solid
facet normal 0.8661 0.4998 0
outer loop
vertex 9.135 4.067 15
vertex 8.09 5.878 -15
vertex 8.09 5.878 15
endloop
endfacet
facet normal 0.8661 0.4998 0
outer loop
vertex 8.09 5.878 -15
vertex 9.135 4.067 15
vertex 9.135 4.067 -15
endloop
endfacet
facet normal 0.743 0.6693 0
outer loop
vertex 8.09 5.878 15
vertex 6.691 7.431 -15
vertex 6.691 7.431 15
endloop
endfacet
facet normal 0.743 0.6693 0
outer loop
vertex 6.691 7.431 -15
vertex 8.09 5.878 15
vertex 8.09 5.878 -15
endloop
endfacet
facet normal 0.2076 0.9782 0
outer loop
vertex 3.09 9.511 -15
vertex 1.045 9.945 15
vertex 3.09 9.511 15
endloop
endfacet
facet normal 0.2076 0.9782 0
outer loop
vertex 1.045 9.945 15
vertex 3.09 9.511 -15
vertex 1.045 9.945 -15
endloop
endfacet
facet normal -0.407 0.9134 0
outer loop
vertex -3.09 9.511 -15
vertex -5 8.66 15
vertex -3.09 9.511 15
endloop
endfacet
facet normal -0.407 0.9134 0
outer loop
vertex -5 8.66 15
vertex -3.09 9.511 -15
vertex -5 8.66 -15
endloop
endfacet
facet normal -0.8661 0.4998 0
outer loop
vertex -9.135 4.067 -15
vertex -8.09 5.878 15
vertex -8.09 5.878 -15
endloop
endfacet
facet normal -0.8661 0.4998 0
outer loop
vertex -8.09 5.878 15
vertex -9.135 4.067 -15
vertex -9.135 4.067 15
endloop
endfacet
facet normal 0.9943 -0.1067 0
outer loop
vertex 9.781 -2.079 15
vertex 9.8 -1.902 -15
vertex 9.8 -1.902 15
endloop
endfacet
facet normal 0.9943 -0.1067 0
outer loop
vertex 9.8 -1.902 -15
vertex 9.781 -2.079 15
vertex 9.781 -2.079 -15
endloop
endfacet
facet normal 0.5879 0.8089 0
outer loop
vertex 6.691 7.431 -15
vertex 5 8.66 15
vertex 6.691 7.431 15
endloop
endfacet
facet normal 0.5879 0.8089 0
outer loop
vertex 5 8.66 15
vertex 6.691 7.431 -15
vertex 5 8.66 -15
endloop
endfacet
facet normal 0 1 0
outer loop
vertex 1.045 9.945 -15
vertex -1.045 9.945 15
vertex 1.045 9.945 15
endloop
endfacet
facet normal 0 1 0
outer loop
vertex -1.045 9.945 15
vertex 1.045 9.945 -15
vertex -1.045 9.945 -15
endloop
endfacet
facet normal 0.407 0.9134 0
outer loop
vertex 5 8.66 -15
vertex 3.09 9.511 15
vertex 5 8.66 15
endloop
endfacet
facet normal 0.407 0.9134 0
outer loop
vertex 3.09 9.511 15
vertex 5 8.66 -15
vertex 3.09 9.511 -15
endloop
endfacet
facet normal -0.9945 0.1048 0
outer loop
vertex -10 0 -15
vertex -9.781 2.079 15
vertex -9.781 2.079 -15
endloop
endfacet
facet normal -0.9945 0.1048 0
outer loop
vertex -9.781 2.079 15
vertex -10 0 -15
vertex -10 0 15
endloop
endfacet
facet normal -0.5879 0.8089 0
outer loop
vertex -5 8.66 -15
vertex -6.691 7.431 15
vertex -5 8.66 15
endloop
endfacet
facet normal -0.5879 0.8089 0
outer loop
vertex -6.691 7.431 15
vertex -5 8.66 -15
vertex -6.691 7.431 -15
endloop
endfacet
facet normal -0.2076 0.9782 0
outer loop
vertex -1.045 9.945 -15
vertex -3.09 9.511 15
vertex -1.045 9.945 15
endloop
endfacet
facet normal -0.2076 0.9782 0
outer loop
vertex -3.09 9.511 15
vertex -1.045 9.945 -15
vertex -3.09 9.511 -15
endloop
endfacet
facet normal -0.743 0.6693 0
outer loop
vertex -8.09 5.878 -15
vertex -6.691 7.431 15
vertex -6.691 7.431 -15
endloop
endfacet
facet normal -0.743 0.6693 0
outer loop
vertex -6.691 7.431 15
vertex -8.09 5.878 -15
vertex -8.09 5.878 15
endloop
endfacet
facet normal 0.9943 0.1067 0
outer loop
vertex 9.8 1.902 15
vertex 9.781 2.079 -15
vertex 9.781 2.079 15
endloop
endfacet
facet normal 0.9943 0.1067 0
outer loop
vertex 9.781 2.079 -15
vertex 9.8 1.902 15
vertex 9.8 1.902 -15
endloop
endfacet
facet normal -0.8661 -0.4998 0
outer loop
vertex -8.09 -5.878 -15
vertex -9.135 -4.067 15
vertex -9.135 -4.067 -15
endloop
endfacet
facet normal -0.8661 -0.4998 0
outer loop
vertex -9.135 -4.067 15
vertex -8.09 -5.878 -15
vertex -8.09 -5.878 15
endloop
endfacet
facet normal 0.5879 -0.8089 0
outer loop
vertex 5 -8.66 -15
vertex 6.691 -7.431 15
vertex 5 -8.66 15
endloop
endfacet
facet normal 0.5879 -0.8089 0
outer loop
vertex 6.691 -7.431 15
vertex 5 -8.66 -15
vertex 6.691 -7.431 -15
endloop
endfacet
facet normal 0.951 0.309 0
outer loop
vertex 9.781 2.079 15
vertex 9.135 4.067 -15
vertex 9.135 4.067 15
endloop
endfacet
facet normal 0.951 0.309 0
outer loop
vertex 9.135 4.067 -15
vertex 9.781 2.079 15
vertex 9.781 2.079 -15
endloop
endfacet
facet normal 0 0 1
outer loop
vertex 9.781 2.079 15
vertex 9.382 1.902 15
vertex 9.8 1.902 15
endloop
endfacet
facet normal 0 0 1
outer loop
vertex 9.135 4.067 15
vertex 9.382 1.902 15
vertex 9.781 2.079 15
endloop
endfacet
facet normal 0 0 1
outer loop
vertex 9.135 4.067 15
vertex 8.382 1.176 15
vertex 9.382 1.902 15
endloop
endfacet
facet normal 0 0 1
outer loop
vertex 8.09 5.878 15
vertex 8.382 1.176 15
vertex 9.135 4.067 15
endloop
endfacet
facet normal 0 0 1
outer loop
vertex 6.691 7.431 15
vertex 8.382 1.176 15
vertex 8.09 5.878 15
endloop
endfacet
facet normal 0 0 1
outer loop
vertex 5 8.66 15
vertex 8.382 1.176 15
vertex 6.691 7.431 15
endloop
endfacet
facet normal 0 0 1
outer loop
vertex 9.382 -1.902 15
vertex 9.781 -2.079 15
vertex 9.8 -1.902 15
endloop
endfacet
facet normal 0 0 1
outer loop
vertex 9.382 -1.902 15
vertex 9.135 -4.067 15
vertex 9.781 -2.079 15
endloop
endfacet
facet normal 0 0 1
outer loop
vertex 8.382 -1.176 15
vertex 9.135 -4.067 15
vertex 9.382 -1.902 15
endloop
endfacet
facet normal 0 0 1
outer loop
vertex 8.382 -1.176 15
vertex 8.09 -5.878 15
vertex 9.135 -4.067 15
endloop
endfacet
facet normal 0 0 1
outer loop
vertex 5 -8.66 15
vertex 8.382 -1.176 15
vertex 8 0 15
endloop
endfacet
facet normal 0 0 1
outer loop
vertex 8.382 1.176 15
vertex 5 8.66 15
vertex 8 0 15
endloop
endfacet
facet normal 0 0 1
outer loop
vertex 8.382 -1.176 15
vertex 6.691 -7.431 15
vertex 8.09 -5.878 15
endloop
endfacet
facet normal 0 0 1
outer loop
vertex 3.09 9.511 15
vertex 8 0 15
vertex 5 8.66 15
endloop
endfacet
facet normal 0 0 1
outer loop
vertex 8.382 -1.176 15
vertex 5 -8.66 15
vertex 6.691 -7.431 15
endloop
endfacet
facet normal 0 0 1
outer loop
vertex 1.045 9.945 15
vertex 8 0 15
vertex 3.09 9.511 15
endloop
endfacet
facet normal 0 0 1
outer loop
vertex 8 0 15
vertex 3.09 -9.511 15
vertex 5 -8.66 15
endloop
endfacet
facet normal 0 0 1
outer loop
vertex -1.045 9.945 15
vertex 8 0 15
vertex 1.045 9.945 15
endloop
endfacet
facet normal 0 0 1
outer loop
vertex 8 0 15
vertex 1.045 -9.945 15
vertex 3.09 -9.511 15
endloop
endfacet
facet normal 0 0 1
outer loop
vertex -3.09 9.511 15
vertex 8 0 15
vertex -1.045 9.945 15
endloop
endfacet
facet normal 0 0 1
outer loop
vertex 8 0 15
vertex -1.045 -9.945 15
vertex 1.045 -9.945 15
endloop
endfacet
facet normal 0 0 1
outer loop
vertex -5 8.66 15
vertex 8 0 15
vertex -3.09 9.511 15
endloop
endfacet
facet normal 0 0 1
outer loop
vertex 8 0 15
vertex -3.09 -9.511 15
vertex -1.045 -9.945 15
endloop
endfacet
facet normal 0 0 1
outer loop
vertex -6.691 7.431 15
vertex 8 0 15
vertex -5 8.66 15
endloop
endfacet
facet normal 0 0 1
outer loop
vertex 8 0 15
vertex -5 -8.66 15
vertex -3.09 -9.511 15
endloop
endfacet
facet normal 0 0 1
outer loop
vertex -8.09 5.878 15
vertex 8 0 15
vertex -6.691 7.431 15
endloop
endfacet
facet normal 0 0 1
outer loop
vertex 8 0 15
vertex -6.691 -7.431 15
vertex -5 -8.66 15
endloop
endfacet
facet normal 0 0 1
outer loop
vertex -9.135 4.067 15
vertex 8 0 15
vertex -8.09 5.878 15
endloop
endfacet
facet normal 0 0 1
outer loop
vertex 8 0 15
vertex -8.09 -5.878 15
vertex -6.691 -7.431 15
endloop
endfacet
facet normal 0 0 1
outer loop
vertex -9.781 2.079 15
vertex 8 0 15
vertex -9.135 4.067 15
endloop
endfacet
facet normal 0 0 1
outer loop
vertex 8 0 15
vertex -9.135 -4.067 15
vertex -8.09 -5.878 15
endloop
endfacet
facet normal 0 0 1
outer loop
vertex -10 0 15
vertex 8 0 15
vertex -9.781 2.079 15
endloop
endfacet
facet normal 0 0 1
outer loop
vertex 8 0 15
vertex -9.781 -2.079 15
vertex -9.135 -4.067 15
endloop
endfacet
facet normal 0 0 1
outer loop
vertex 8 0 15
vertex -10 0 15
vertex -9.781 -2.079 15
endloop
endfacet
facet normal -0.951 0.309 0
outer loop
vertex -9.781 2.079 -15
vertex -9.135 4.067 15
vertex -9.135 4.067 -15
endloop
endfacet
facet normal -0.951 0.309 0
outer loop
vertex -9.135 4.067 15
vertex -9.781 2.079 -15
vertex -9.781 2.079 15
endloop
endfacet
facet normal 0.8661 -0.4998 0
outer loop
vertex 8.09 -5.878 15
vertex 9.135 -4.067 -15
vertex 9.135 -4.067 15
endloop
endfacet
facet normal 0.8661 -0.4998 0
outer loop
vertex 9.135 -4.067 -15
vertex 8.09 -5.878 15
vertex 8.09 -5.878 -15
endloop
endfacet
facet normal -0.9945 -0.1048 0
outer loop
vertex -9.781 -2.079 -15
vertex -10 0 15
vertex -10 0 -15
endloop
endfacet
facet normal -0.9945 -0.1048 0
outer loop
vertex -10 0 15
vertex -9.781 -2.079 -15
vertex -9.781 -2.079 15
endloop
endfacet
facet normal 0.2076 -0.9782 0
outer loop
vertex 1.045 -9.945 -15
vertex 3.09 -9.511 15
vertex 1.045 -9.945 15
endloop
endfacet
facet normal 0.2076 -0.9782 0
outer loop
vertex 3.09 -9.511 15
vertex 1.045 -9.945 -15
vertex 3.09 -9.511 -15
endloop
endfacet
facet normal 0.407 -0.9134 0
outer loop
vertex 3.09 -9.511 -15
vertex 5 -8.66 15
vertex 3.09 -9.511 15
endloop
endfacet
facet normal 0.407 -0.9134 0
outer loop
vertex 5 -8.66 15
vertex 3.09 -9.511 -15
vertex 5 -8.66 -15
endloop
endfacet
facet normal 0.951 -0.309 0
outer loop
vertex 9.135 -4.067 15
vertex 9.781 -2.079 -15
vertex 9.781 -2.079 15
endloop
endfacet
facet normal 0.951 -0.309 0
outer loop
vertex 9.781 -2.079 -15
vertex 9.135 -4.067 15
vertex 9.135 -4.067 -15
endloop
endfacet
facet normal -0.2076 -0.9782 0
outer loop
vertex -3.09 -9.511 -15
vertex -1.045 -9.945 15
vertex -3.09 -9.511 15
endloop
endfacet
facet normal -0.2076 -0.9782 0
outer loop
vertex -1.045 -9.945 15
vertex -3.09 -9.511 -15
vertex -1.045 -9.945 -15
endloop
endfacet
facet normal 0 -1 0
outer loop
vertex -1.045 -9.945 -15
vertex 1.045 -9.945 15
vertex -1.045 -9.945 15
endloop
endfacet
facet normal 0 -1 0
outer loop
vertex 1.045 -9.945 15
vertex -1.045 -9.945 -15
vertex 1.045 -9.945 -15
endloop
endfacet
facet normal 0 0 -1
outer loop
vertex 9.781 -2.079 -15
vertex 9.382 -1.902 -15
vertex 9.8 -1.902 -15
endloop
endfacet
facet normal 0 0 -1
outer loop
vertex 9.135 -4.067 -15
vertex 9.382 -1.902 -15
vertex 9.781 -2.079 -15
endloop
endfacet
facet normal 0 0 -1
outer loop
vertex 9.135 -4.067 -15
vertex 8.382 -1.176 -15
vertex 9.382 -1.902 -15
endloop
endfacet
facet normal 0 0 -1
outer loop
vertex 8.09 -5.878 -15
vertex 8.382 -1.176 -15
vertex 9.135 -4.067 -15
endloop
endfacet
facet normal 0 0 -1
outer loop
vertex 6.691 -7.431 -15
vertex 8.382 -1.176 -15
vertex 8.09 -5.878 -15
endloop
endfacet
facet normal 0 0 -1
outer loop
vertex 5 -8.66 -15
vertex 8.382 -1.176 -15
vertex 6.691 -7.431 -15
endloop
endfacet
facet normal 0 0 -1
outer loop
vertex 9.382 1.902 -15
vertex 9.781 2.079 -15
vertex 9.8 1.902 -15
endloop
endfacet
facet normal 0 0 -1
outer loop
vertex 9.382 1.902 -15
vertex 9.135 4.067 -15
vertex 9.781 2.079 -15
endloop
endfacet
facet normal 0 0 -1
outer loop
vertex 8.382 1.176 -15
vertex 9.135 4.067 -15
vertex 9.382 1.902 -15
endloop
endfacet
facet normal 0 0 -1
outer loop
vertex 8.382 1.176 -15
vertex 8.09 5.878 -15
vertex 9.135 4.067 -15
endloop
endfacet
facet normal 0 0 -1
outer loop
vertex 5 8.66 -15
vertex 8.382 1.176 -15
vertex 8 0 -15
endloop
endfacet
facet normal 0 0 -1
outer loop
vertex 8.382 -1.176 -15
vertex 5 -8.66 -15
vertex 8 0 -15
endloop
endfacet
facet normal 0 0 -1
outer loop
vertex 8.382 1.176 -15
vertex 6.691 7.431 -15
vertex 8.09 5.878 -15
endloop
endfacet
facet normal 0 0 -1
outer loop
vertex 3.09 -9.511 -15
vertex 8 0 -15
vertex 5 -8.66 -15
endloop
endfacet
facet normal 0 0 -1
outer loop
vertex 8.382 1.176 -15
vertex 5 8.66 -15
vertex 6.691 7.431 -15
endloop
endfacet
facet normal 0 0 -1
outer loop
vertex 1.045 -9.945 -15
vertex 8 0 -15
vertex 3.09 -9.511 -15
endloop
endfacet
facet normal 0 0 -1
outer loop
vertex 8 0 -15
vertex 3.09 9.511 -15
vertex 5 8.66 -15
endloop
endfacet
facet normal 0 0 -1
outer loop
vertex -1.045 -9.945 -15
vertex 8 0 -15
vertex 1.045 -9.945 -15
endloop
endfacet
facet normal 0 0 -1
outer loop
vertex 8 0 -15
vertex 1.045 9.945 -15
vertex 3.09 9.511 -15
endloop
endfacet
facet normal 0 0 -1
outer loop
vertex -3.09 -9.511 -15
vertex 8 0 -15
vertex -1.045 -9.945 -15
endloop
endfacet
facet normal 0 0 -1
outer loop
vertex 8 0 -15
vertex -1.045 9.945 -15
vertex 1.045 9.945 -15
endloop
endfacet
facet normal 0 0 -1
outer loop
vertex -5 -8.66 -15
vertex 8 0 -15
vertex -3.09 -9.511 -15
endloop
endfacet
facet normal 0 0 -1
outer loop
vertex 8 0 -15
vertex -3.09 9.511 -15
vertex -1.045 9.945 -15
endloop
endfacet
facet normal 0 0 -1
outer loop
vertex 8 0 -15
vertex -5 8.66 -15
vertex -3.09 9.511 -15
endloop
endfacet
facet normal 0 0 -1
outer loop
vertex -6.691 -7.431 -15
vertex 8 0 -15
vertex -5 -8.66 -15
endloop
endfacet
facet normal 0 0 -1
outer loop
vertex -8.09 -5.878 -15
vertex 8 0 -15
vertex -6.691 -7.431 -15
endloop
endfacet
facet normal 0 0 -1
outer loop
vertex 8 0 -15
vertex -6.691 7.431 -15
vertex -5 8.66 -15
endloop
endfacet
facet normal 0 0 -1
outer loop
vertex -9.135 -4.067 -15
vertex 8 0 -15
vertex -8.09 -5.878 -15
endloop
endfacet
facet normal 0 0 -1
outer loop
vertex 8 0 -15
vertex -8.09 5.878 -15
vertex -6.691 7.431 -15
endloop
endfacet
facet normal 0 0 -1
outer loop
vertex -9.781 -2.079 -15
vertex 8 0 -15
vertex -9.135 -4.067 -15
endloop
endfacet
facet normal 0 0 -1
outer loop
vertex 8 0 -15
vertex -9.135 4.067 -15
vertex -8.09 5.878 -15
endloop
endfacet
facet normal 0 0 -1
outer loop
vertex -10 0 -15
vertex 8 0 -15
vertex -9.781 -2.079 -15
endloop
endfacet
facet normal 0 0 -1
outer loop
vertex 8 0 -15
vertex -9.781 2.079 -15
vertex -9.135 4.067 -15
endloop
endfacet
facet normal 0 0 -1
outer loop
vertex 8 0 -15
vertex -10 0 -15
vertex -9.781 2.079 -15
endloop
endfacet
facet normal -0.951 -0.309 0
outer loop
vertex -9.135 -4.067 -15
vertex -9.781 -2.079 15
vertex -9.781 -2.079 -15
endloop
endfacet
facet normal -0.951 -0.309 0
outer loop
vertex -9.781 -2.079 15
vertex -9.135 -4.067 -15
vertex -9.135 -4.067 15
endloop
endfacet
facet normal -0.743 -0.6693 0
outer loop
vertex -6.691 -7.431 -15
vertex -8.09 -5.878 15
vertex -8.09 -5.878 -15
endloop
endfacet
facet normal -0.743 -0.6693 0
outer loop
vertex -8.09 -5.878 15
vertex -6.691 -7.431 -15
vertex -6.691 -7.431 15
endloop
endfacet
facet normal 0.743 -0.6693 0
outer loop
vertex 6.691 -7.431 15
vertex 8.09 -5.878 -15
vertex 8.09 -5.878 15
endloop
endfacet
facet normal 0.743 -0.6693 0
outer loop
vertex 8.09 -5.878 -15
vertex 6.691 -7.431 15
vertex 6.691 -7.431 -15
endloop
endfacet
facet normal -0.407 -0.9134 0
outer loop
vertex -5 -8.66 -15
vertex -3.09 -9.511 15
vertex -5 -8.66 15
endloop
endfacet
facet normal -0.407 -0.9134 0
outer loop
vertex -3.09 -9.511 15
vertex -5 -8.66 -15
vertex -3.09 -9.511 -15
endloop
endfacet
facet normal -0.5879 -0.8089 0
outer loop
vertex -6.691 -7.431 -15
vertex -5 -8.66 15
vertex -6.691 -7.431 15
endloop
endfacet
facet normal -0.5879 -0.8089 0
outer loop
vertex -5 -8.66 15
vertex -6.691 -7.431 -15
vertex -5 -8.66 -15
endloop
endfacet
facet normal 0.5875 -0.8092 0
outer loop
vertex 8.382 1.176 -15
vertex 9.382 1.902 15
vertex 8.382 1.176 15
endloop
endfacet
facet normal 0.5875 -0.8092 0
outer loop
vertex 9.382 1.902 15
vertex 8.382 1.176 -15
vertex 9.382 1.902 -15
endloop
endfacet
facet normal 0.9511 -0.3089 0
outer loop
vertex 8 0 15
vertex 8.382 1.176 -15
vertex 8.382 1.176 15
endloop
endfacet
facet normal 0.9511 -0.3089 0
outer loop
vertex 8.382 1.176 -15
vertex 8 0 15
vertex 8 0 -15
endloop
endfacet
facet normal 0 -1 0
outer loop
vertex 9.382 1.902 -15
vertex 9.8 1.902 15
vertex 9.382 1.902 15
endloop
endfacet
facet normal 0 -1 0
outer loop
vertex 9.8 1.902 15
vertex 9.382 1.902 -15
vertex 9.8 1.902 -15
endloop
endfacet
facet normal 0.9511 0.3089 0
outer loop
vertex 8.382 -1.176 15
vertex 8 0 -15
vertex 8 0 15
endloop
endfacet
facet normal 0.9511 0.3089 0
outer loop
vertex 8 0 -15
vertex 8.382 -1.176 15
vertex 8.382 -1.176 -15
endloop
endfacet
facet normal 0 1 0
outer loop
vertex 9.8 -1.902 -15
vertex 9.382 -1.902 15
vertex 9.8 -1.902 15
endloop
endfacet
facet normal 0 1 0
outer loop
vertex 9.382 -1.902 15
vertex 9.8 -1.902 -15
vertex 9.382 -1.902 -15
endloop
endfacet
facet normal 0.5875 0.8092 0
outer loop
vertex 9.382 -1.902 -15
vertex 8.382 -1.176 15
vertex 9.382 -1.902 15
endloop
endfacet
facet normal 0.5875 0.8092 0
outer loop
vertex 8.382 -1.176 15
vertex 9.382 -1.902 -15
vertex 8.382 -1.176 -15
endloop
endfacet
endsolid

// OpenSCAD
//
// Makes a cylinder with a notch.
// Params:
//   radio -- Radio of the cylinder.
//   height -- Height of the cylinder.
//   notch_radio -- Radio of the notch.
//   center -- [true, false] Center the cylinder in origin [0,0,0].
//
module cylinder_with_notch(
    radio = 10, height = 30, notch_radio = 2, center=false, $fn=$fn)
{
  
  difference() 
  {
    // Main cylinder.
    cylinder(r=radio, h=height, center=center);
    // Lets subtract notch.
    translate([radio, 0, 0])
      cylinder(r=notch_radio, h=height+10, center=center, $fn=$fn+10);
  }
} 

// Cylinder with notch.
cylinder_with_notch(radio=10, height=30, notch_radio=2, center=true);
